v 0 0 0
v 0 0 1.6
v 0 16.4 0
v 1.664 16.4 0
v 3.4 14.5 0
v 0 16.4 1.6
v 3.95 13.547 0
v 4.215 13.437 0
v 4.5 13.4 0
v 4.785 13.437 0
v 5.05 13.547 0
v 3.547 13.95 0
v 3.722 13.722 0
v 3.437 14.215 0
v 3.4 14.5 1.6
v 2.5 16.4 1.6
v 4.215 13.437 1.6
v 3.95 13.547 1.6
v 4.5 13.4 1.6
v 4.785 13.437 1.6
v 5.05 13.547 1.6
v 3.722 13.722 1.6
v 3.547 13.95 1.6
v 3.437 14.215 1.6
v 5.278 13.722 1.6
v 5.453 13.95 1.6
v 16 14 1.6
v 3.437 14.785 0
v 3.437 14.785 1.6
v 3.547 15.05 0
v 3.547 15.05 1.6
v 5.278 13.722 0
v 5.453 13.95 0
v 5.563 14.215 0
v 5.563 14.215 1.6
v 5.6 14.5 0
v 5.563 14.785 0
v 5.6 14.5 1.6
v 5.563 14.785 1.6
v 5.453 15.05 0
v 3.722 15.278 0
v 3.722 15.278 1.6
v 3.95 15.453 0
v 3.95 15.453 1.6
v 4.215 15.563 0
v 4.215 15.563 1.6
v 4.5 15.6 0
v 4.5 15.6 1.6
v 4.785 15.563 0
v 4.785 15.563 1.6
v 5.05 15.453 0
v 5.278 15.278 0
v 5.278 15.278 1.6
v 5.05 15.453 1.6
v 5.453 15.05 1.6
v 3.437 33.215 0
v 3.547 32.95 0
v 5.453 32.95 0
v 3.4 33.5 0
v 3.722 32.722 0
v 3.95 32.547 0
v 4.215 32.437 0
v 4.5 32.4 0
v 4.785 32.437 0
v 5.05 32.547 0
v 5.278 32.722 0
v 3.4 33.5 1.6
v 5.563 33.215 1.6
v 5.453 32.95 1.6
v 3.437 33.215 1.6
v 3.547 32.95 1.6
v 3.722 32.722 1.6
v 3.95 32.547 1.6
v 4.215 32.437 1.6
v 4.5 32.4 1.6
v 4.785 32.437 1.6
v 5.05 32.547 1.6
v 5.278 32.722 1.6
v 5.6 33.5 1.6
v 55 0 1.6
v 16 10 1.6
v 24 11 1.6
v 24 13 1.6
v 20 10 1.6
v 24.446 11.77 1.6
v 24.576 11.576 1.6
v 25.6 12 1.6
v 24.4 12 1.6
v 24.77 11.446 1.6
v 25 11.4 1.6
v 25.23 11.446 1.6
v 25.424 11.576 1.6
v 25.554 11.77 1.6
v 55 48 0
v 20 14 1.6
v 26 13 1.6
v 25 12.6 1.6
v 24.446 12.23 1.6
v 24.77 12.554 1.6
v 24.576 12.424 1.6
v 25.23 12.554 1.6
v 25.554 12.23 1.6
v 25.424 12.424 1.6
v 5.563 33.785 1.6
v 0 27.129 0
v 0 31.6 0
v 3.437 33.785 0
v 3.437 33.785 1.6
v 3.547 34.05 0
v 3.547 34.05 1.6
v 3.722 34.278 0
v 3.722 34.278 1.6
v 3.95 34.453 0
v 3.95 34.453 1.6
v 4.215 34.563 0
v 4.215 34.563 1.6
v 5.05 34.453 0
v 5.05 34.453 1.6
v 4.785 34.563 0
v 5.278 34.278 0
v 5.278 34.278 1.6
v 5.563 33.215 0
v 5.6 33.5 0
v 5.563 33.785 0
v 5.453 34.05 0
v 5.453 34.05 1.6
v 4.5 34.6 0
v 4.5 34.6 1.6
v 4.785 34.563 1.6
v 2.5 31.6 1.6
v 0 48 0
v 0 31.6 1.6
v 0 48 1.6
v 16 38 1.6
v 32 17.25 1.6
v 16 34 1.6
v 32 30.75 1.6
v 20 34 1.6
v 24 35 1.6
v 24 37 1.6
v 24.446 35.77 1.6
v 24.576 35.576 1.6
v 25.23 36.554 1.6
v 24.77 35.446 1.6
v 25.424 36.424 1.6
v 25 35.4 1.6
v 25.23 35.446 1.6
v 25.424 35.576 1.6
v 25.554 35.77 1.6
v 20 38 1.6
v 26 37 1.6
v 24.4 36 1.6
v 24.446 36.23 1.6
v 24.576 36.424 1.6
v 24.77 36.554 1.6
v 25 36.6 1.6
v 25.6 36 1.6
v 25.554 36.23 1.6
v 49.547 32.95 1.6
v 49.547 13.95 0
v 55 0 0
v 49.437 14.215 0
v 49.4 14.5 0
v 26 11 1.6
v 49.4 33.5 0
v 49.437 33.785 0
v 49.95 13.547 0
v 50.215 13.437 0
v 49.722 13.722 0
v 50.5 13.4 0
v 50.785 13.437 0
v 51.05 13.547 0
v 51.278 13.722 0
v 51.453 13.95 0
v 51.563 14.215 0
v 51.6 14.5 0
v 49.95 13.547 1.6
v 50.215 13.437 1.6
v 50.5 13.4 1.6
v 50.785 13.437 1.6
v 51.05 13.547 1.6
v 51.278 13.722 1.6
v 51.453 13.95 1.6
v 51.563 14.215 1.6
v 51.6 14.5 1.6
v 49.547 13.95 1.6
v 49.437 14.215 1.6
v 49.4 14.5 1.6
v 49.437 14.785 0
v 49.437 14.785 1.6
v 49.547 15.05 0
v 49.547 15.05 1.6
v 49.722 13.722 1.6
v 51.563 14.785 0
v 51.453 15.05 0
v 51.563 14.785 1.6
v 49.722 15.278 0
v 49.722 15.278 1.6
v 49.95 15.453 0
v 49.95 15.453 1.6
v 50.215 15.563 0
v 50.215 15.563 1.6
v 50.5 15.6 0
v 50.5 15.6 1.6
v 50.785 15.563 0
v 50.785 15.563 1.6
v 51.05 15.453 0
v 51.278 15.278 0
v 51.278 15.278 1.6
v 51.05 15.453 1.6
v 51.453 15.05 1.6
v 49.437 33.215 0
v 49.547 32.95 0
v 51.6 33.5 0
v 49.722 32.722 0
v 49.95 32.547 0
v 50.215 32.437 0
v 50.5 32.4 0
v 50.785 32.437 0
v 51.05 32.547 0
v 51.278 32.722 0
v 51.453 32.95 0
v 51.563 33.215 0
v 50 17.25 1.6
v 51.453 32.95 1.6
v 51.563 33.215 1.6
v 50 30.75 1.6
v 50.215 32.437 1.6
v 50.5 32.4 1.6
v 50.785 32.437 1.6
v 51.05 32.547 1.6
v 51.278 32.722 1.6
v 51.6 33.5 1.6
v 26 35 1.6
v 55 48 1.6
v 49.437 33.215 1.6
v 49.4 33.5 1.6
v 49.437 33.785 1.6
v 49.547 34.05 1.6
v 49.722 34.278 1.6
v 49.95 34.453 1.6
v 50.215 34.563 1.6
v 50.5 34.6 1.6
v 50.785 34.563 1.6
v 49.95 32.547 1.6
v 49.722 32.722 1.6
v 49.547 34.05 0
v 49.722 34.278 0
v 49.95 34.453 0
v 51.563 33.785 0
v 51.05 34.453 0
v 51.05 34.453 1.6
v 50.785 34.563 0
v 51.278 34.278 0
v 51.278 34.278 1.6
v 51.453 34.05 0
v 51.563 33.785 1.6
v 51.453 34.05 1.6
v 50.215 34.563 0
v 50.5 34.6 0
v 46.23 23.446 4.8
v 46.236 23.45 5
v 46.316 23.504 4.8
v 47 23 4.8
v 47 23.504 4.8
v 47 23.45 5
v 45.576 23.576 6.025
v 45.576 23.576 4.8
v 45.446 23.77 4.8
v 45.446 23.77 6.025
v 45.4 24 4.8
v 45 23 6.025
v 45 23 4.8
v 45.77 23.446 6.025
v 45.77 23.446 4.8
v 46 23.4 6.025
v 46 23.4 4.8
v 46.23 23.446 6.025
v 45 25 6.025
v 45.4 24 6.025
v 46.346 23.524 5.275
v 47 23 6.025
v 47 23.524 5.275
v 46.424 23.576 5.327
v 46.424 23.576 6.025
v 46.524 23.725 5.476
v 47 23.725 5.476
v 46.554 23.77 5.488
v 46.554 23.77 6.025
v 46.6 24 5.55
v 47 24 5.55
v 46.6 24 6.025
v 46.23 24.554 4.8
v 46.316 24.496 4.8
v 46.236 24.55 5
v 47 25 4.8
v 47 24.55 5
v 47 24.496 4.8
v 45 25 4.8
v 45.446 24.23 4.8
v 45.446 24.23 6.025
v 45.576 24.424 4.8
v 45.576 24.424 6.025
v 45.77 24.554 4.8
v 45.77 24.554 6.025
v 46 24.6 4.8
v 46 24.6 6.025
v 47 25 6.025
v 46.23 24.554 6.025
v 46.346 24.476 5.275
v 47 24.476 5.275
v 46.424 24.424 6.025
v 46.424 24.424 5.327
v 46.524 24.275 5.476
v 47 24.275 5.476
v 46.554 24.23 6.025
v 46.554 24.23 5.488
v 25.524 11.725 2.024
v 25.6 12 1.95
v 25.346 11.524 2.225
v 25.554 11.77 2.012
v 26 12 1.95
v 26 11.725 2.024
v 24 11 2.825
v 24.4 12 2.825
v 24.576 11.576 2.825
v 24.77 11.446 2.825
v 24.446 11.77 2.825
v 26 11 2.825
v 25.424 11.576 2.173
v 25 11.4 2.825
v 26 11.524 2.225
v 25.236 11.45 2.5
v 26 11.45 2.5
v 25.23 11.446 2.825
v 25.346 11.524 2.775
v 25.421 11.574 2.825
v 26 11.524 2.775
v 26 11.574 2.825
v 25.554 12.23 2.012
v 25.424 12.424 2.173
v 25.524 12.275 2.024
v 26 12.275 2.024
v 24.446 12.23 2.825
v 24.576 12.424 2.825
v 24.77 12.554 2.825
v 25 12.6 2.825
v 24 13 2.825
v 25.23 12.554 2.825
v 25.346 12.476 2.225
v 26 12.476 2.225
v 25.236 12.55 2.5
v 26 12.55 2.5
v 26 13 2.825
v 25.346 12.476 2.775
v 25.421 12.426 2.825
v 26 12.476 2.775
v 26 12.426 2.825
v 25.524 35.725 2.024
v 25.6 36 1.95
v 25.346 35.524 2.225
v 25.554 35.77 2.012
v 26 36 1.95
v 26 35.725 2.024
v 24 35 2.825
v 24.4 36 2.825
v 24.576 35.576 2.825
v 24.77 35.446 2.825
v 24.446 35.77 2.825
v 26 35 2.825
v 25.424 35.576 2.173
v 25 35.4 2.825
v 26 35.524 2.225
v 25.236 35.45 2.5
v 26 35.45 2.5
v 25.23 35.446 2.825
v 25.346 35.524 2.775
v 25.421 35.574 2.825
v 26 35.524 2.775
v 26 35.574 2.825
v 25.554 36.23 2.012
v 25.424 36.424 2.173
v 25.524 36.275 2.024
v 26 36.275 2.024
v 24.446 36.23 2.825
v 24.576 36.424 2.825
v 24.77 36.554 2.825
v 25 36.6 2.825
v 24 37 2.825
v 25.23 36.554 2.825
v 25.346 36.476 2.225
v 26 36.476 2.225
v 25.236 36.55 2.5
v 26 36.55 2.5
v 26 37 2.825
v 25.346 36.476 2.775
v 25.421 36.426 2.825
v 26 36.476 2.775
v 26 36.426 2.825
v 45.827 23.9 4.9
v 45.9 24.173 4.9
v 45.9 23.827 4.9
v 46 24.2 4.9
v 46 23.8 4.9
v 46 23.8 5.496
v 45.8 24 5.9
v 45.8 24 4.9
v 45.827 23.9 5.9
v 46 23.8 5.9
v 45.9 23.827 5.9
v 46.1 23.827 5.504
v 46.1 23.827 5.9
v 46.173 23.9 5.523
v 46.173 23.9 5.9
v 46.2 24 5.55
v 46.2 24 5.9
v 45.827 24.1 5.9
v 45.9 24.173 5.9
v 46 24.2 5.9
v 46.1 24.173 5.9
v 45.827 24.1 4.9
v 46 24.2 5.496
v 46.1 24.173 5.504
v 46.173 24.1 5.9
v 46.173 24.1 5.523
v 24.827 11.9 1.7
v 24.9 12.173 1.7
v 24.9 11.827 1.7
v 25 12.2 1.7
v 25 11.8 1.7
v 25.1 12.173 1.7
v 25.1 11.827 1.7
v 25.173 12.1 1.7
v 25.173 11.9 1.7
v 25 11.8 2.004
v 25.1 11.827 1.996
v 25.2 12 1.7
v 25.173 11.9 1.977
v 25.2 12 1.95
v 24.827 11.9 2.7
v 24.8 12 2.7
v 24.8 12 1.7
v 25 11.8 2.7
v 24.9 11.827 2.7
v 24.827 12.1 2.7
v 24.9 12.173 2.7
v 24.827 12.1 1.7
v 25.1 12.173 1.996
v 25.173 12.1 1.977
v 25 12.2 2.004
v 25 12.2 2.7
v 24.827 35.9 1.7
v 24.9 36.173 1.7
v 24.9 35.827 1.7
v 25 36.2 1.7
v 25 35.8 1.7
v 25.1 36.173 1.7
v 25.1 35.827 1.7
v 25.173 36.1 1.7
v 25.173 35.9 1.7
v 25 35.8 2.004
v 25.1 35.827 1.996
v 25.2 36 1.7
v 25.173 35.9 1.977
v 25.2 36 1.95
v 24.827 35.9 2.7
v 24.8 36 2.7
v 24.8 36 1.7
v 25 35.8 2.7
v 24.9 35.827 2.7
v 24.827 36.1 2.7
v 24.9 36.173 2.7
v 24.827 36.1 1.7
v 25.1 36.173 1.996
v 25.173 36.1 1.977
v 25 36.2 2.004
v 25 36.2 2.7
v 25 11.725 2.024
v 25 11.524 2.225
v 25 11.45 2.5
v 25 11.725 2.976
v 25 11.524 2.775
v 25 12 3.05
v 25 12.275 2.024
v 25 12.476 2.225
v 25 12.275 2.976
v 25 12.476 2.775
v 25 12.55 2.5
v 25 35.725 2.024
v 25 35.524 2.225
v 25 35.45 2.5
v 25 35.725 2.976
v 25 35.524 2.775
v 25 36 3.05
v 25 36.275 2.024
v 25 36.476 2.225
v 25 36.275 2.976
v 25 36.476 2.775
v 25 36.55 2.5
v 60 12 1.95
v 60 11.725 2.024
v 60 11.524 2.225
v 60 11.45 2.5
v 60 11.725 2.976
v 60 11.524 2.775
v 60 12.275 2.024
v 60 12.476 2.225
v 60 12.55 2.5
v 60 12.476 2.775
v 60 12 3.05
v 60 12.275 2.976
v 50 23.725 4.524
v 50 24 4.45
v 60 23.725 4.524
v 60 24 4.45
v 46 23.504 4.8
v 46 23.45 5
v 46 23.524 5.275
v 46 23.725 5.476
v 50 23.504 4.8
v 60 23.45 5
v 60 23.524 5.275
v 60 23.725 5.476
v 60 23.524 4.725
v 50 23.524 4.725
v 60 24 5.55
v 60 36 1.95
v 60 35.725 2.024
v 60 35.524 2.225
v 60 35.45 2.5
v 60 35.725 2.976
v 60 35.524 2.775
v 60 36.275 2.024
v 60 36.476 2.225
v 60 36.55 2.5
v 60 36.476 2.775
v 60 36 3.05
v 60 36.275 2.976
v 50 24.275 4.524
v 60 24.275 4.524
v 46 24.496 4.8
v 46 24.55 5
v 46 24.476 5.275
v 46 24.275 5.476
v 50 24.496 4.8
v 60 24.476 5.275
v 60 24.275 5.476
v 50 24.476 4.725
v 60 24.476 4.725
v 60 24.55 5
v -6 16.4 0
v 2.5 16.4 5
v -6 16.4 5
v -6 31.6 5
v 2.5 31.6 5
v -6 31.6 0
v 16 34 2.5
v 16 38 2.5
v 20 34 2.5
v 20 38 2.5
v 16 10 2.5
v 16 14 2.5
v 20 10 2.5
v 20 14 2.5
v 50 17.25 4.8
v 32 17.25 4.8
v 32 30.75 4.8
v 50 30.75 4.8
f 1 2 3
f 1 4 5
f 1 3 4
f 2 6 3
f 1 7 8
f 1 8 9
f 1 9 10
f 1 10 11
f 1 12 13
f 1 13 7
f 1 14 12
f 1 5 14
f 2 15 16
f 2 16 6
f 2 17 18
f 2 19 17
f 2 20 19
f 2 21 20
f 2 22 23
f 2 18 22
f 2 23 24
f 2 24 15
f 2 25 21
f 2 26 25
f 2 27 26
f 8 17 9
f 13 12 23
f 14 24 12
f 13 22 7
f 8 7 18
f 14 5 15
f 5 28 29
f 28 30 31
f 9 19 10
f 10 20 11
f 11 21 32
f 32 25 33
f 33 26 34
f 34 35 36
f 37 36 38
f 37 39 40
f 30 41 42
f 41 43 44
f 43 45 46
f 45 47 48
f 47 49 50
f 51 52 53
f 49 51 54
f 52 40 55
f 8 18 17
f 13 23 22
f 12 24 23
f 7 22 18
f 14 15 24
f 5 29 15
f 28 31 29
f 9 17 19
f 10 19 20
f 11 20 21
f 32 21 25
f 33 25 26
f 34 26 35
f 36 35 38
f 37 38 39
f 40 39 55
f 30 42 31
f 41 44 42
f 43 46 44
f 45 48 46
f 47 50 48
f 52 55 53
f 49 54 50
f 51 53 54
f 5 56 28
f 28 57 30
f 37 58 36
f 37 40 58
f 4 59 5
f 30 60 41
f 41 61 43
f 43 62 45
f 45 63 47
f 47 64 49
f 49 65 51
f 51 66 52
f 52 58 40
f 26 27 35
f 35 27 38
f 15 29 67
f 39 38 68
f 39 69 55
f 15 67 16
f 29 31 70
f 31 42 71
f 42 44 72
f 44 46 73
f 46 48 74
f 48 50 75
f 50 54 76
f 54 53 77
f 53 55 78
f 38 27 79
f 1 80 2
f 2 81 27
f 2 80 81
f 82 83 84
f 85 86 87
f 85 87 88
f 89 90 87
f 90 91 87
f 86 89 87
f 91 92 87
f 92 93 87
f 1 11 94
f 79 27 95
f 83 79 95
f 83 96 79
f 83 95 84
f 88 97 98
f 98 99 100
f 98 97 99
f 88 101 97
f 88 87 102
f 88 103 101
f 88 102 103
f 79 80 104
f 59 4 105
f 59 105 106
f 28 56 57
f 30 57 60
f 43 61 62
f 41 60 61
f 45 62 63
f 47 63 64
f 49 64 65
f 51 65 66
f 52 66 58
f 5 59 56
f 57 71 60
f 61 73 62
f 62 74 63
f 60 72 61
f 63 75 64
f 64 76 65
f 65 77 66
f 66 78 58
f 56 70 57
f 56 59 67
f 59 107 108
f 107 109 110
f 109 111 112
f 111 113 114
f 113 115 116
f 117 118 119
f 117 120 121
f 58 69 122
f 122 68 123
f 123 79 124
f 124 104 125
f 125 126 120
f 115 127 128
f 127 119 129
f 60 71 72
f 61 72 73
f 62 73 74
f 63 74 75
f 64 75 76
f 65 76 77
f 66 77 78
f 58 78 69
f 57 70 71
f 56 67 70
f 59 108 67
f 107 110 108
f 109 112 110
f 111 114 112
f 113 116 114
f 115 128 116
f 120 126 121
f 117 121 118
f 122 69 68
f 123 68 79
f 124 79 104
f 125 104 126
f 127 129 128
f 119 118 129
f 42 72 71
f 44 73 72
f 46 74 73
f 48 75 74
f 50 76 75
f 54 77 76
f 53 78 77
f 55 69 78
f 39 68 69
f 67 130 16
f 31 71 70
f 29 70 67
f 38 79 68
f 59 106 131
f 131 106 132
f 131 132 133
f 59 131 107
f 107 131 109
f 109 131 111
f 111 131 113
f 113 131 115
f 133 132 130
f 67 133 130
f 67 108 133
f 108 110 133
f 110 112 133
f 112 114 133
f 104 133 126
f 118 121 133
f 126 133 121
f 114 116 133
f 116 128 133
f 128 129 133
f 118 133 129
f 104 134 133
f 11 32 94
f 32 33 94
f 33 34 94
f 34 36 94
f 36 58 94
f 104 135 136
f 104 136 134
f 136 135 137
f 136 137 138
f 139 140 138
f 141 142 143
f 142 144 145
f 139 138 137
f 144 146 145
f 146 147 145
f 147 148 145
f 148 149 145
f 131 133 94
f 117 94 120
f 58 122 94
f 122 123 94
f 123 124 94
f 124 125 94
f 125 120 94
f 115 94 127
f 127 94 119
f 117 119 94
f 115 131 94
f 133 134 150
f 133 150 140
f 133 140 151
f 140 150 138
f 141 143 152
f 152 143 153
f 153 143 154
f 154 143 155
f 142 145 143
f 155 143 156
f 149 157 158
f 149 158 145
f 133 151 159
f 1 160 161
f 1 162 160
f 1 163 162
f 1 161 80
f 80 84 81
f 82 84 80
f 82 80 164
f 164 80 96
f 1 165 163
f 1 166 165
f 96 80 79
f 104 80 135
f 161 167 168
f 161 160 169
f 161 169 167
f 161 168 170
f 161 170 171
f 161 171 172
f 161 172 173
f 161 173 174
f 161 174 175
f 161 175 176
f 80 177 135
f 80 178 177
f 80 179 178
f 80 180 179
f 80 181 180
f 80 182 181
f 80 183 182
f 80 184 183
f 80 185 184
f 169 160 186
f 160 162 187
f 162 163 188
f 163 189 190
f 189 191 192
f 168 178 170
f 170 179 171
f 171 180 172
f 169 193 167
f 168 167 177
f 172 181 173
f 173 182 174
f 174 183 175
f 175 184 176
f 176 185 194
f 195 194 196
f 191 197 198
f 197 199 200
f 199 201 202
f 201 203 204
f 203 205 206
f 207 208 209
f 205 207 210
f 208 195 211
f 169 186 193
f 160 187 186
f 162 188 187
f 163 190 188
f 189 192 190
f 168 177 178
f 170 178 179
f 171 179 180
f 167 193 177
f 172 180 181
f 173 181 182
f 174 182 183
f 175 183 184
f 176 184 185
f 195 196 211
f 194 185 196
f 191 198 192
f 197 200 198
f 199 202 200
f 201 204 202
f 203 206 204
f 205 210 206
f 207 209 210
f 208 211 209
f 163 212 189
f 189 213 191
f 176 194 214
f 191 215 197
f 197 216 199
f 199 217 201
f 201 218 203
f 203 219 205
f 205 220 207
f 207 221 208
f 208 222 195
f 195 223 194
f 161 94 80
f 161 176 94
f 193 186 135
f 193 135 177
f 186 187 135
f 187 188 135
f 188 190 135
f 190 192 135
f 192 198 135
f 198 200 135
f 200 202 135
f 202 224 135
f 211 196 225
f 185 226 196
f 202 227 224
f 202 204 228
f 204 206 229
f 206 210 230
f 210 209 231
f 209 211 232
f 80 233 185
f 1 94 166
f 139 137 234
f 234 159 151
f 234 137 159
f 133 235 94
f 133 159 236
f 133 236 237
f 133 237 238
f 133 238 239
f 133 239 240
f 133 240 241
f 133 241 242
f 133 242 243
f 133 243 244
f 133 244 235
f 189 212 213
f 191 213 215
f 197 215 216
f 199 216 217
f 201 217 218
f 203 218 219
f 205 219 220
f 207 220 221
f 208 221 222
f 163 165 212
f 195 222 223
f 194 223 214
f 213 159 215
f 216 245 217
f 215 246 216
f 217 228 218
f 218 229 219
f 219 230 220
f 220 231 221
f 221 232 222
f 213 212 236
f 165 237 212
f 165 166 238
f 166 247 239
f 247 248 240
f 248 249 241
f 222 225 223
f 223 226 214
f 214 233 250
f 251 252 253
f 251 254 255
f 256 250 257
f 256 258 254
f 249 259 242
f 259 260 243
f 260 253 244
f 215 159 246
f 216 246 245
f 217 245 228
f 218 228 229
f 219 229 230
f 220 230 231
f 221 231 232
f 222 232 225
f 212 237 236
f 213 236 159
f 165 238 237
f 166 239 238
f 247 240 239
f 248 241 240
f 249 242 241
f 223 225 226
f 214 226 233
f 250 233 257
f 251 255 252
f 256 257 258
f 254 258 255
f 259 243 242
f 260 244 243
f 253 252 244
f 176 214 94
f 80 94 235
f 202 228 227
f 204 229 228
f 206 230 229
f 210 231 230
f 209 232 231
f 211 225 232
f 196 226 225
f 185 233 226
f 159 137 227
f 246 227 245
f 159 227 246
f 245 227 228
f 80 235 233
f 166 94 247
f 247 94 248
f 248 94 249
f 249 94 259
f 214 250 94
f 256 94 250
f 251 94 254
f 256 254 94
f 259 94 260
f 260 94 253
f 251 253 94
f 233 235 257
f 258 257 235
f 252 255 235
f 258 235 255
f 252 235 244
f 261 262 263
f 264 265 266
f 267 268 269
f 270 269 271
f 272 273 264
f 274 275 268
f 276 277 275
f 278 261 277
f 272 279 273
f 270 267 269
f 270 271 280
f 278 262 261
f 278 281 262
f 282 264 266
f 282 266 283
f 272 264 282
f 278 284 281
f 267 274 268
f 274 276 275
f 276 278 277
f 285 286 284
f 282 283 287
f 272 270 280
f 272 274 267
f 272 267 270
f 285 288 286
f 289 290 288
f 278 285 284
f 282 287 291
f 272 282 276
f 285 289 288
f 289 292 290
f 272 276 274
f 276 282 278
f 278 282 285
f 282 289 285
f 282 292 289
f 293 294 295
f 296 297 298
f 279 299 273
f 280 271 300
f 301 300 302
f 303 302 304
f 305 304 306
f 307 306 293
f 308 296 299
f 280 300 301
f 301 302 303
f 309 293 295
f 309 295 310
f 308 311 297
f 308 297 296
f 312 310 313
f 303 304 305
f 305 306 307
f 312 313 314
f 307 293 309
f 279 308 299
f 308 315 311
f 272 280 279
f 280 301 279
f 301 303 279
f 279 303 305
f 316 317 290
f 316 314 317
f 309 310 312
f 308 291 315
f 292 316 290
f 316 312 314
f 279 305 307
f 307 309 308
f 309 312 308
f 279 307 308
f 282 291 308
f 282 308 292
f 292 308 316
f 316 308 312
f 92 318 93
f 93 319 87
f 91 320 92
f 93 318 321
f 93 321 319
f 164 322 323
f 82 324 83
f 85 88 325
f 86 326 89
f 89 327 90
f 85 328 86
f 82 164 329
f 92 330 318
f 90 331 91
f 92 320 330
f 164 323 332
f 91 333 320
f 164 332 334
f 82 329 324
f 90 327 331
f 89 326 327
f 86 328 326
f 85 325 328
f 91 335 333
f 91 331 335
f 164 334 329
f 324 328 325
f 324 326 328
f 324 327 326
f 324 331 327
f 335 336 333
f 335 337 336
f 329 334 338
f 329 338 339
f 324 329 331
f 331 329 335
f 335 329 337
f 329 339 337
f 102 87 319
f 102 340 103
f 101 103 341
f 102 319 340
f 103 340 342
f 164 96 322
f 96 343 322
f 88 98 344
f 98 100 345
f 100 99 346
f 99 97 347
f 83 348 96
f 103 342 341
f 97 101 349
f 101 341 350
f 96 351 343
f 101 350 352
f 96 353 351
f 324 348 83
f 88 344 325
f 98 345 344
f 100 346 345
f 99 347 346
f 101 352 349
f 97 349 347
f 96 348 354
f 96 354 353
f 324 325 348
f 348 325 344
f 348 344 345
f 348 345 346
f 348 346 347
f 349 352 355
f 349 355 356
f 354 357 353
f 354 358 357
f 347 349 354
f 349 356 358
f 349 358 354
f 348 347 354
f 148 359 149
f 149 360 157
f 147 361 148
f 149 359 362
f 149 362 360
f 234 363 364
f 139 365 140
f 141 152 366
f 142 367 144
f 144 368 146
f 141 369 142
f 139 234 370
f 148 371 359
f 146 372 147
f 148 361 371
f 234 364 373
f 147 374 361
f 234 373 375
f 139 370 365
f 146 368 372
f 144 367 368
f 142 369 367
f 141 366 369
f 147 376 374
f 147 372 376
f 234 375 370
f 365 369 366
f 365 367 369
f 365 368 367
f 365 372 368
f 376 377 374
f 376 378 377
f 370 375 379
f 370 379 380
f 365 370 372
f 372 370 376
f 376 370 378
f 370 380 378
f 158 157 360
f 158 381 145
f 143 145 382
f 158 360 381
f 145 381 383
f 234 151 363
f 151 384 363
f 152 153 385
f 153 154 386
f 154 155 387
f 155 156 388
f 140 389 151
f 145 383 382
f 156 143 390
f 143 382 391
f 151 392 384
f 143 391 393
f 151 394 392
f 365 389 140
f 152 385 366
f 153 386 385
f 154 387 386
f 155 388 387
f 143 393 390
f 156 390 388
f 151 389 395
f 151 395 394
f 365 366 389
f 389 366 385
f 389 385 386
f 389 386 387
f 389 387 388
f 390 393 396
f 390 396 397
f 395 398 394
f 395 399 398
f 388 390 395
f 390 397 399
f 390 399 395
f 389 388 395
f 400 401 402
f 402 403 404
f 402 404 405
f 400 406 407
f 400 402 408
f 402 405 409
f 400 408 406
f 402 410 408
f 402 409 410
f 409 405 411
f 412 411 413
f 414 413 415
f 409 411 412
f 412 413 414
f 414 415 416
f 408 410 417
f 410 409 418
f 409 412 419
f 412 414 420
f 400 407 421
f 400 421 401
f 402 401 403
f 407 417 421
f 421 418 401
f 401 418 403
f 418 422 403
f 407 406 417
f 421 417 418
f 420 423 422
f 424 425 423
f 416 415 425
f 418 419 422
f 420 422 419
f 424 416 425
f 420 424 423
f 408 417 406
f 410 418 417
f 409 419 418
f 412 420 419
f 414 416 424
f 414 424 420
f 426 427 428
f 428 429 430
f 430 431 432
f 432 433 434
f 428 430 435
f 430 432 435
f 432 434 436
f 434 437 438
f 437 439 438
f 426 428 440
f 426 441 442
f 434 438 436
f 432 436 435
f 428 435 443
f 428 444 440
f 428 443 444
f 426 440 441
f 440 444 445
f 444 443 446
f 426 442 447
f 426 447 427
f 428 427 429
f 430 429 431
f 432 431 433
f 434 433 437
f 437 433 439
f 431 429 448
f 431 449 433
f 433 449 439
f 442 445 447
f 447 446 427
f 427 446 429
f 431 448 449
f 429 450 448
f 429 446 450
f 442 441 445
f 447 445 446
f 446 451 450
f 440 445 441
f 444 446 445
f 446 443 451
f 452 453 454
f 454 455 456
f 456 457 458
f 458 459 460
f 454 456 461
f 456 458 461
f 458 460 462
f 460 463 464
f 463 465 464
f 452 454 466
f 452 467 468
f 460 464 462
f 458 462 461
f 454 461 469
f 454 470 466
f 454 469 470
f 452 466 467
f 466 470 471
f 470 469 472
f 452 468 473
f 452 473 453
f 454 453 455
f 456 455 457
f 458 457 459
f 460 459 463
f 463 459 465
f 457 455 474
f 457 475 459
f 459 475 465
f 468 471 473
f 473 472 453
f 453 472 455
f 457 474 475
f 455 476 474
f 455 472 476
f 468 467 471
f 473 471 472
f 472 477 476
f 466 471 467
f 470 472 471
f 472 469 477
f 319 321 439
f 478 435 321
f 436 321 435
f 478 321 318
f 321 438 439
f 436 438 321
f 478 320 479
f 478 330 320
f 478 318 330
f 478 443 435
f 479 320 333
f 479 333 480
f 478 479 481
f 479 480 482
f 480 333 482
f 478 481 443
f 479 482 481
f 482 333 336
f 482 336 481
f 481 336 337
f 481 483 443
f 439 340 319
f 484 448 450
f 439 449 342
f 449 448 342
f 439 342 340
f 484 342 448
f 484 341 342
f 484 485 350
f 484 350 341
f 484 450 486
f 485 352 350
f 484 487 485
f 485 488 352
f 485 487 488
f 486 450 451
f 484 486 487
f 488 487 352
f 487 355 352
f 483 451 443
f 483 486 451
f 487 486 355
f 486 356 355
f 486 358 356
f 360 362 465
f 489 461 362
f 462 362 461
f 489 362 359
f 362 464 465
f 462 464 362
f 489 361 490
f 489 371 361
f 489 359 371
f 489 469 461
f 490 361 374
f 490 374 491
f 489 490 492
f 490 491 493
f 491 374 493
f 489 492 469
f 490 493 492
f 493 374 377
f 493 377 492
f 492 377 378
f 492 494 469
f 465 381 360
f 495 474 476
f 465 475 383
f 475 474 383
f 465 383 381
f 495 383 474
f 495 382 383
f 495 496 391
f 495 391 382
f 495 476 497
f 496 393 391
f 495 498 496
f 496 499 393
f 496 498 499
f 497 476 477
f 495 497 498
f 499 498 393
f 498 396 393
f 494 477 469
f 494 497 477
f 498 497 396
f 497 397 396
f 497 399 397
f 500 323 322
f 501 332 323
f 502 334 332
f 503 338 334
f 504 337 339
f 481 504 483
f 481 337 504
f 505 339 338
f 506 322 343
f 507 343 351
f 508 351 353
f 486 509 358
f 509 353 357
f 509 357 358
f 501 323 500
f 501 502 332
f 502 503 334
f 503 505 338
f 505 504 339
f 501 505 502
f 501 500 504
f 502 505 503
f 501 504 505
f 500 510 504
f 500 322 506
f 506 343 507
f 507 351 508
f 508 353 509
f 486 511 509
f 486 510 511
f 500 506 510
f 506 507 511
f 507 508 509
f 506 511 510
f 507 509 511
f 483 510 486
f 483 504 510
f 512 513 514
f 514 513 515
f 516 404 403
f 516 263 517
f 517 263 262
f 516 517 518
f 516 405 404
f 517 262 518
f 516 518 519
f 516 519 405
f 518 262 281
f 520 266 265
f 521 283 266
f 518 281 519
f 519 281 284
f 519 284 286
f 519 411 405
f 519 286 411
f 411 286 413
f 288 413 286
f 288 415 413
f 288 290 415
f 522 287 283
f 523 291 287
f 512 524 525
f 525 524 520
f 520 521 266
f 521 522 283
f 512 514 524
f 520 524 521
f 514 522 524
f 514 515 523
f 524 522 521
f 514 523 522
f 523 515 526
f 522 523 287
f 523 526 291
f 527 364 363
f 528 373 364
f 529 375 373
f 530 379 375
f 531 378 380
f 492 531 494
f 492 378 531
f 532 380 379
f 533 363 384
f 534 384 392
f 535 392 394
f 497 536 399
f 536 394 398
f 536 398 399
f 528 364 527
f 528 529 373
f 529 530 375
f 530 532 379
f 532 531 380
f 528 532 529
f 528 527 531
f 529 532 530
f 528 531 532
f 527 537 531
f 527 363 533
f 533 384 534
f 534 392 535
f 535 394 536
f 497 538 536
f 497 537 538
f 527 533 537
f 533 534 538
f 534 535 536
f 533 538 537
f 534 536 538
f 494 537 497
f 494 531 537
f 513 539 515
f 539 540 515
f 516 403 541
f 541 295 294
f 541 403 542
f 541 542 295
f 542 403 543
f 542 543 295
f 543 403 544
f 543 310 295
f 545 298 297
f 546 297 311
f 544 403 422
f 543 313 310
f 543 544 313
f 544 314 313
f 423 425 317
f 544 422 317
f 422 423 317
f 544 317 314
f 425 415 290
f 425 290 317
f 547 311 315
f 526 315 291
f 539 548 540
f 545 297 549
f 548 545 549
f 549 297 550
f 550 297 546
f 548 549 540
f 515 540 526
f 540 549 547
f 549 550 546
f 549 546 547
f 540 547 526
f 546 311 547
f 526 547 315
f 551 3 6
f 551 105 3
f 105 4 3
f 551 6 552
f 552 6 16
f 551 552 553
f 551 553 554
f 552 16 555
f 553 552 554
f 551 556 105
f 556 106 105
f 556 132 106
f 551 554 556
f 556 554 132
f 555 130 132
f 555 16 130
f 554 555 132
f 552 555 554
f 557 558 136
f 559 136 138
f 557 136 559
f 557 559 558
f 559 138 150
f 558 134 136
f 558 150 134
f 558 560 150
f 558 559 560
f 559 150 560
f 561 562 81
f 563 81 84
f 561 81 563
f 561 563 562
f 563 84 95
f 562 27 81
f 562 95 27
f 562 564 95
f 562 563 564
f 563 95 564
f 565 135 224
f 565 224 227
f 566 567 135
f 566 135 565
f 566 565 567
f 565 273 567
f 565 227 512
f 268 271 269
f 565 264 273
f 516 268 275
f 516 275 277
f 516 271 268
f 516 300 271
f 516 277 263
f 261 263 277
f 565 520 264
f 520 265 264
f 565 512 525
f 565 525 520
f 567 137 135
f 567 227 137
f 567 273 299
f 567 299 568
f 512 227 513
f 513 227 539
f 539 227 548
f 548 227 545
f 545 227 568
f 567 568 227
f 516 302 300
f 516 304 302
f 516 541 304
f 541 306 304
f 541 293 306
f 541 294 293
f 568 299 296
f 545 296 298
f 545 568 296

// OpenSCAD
// =============================================================================
// OpenMotorBridge - Dummy 3D Model: Compact OMM Rear Transceiver PCB (Pod 3)
// =============================================================================
// File: hardware/cad/scad/00_common/dummies/dummy_omm_transceiver_pcb.scad
// Description: Accurate 3D CAD model of the compact Rear Pod 3 PCBA (55 x 48 mm):
//              - 55 x 48 x 1.6 mm FR4 Substrate with 4x M2 Mounting Holes
//              - 6-Pin Horizontal Female Socket centered at Y = 24.0 mm
//              - ESP32-C3-WROOM-02U (with U.FL micro-coax connector)
//              - Semtech SX1262 LoRa with U.FL connector
//              - u-blox MAX-M10S GNSS with U.FL connector
//              - 3x U.FL pigtail leads running to rear antenna bracket & SMA
// =============================================================================

include <../parameters.scad>;

module ufl_connector() {
    color("gold") {
        difference() {
            cube([2.0, 2.0, 1.25], center=true);
            cylinder(r=0.6, h=1.5, center=true, $fn=16);
        }
    }
    color("black")
        cylinder(r=0.2, h=1.0, center=true, $fn=12);
}

module dummy_omm_transceiver_pcb() {
    pcb_l = 55.0;
    pcb_w = 48.0;
    y_c   = pcb_w / 2.0; // 24.0 mm

    // 1. PCB Substrate (FR4 Green, 55 x 48 x 1.6 mm)
    color("forestgreen") {
        difference() {
            cube(size=[pcb_l, pcb_w, 1.6], center=false);
            // 4x M2 Mounting Holes concentric with sled standoffs (pitch: 46.0 x 19.0 mm)
            translate([4.5, y_c - 9.5, -0.1]) cylinder(r=1.1, h=2.0, $fn=24);
            translate([50.5, y_c - 9.5, -0.1]) cylinder(r=1.1, h=2.0, $fn=24);
            translate([4.5, y_c + 9.5, -0.1]) cylinder(r=1.1, h=2.0, $fn=24);
            translate([50.5, y_c + 9.5, -0.1]) cylinder(r=1.1, h=2.0, $fn=24);
        }
    }

    // 2. 6-Pin Horizontal Female Socket (Black plastic housing projecting towards -X)
    // Centered at Y = 24.0 mm, projecting 6.0 mm over front board edge
    color("darkslategray")
        translate([-6.0, y_c - 7.6, 0.0])
            cube(size=[8.5, 15.2, 5.0], center=false);

    // 3. Semtech SX1262 LoRa Transceiver (QFN-24 4x4mm)
    color("black")
        translate([16.0, y_c + 10.0, 1.6])
            cube(size=[4.0, 4.0, 0.9], center=false);

    // U.FL for LoRa 868 MHz
    translate([25.0, y_c + 12.0, 1.6 + 0.6])
        ufl_connector();

    // 4. u-blox MAX-M10S GNSS Receiver (QFN-24 4x4mm)
    color("black")
        translate([16.0, y_c - 14.0, 1.6])
            cube(size=[4.0, 4.0, 0.9], center=false);

    // U.FL for GNSS 1575 MHz
    translate([25.0, y_c - 12.0, 1.6 + 0.6])
        ufl_connector();

    // 5. ESP32-C3-WROOM-02U Wireless MCU Module (18.0 x 13.5 x 3.2 mm) with U.FL
    color("silver")
        translate([32.0, y_c - 6.75, 1.6])
            cube(size=[18.0, 13.5, 3.2], center=false);

    // U.FL for 2.4 GHz Mesh
    translate([46.0, y_c, 1.6 + 3.2 + 0.6])
        ufl_connector();

    // 6. 3x Flexible Micro-Coax Leads (1.13mm OD) trailing to the rear
    color("dimgray") {
        // LoRa Pigtail to rear
        translate([25.0, y_c + 12.0, 2.5])
            rotate([0, 90, 0])
                cylinder(r=0.55, h=pcb_l - 25.0 + 5.0, $fn=12);
        // GNSS Pigtail to rear
        translate([25.0, y_c - 12.0, 2.5])
            rotate([0, 90, 0])
                cylinder(r=0.55, h=pcb_l - 25.0 + 5.0, $fn=12);
        // 2.4 GHz Pigtail to rear
        translate([46.0, y_c, 5.0])
            rotate([0, 90, 0])
                cylinder(r=0.55, h=pcb_l - 46.0 + 5.0, $fn=12);
    }
}

// Preview standalone
dummy_omm_transceiver_pcb();
